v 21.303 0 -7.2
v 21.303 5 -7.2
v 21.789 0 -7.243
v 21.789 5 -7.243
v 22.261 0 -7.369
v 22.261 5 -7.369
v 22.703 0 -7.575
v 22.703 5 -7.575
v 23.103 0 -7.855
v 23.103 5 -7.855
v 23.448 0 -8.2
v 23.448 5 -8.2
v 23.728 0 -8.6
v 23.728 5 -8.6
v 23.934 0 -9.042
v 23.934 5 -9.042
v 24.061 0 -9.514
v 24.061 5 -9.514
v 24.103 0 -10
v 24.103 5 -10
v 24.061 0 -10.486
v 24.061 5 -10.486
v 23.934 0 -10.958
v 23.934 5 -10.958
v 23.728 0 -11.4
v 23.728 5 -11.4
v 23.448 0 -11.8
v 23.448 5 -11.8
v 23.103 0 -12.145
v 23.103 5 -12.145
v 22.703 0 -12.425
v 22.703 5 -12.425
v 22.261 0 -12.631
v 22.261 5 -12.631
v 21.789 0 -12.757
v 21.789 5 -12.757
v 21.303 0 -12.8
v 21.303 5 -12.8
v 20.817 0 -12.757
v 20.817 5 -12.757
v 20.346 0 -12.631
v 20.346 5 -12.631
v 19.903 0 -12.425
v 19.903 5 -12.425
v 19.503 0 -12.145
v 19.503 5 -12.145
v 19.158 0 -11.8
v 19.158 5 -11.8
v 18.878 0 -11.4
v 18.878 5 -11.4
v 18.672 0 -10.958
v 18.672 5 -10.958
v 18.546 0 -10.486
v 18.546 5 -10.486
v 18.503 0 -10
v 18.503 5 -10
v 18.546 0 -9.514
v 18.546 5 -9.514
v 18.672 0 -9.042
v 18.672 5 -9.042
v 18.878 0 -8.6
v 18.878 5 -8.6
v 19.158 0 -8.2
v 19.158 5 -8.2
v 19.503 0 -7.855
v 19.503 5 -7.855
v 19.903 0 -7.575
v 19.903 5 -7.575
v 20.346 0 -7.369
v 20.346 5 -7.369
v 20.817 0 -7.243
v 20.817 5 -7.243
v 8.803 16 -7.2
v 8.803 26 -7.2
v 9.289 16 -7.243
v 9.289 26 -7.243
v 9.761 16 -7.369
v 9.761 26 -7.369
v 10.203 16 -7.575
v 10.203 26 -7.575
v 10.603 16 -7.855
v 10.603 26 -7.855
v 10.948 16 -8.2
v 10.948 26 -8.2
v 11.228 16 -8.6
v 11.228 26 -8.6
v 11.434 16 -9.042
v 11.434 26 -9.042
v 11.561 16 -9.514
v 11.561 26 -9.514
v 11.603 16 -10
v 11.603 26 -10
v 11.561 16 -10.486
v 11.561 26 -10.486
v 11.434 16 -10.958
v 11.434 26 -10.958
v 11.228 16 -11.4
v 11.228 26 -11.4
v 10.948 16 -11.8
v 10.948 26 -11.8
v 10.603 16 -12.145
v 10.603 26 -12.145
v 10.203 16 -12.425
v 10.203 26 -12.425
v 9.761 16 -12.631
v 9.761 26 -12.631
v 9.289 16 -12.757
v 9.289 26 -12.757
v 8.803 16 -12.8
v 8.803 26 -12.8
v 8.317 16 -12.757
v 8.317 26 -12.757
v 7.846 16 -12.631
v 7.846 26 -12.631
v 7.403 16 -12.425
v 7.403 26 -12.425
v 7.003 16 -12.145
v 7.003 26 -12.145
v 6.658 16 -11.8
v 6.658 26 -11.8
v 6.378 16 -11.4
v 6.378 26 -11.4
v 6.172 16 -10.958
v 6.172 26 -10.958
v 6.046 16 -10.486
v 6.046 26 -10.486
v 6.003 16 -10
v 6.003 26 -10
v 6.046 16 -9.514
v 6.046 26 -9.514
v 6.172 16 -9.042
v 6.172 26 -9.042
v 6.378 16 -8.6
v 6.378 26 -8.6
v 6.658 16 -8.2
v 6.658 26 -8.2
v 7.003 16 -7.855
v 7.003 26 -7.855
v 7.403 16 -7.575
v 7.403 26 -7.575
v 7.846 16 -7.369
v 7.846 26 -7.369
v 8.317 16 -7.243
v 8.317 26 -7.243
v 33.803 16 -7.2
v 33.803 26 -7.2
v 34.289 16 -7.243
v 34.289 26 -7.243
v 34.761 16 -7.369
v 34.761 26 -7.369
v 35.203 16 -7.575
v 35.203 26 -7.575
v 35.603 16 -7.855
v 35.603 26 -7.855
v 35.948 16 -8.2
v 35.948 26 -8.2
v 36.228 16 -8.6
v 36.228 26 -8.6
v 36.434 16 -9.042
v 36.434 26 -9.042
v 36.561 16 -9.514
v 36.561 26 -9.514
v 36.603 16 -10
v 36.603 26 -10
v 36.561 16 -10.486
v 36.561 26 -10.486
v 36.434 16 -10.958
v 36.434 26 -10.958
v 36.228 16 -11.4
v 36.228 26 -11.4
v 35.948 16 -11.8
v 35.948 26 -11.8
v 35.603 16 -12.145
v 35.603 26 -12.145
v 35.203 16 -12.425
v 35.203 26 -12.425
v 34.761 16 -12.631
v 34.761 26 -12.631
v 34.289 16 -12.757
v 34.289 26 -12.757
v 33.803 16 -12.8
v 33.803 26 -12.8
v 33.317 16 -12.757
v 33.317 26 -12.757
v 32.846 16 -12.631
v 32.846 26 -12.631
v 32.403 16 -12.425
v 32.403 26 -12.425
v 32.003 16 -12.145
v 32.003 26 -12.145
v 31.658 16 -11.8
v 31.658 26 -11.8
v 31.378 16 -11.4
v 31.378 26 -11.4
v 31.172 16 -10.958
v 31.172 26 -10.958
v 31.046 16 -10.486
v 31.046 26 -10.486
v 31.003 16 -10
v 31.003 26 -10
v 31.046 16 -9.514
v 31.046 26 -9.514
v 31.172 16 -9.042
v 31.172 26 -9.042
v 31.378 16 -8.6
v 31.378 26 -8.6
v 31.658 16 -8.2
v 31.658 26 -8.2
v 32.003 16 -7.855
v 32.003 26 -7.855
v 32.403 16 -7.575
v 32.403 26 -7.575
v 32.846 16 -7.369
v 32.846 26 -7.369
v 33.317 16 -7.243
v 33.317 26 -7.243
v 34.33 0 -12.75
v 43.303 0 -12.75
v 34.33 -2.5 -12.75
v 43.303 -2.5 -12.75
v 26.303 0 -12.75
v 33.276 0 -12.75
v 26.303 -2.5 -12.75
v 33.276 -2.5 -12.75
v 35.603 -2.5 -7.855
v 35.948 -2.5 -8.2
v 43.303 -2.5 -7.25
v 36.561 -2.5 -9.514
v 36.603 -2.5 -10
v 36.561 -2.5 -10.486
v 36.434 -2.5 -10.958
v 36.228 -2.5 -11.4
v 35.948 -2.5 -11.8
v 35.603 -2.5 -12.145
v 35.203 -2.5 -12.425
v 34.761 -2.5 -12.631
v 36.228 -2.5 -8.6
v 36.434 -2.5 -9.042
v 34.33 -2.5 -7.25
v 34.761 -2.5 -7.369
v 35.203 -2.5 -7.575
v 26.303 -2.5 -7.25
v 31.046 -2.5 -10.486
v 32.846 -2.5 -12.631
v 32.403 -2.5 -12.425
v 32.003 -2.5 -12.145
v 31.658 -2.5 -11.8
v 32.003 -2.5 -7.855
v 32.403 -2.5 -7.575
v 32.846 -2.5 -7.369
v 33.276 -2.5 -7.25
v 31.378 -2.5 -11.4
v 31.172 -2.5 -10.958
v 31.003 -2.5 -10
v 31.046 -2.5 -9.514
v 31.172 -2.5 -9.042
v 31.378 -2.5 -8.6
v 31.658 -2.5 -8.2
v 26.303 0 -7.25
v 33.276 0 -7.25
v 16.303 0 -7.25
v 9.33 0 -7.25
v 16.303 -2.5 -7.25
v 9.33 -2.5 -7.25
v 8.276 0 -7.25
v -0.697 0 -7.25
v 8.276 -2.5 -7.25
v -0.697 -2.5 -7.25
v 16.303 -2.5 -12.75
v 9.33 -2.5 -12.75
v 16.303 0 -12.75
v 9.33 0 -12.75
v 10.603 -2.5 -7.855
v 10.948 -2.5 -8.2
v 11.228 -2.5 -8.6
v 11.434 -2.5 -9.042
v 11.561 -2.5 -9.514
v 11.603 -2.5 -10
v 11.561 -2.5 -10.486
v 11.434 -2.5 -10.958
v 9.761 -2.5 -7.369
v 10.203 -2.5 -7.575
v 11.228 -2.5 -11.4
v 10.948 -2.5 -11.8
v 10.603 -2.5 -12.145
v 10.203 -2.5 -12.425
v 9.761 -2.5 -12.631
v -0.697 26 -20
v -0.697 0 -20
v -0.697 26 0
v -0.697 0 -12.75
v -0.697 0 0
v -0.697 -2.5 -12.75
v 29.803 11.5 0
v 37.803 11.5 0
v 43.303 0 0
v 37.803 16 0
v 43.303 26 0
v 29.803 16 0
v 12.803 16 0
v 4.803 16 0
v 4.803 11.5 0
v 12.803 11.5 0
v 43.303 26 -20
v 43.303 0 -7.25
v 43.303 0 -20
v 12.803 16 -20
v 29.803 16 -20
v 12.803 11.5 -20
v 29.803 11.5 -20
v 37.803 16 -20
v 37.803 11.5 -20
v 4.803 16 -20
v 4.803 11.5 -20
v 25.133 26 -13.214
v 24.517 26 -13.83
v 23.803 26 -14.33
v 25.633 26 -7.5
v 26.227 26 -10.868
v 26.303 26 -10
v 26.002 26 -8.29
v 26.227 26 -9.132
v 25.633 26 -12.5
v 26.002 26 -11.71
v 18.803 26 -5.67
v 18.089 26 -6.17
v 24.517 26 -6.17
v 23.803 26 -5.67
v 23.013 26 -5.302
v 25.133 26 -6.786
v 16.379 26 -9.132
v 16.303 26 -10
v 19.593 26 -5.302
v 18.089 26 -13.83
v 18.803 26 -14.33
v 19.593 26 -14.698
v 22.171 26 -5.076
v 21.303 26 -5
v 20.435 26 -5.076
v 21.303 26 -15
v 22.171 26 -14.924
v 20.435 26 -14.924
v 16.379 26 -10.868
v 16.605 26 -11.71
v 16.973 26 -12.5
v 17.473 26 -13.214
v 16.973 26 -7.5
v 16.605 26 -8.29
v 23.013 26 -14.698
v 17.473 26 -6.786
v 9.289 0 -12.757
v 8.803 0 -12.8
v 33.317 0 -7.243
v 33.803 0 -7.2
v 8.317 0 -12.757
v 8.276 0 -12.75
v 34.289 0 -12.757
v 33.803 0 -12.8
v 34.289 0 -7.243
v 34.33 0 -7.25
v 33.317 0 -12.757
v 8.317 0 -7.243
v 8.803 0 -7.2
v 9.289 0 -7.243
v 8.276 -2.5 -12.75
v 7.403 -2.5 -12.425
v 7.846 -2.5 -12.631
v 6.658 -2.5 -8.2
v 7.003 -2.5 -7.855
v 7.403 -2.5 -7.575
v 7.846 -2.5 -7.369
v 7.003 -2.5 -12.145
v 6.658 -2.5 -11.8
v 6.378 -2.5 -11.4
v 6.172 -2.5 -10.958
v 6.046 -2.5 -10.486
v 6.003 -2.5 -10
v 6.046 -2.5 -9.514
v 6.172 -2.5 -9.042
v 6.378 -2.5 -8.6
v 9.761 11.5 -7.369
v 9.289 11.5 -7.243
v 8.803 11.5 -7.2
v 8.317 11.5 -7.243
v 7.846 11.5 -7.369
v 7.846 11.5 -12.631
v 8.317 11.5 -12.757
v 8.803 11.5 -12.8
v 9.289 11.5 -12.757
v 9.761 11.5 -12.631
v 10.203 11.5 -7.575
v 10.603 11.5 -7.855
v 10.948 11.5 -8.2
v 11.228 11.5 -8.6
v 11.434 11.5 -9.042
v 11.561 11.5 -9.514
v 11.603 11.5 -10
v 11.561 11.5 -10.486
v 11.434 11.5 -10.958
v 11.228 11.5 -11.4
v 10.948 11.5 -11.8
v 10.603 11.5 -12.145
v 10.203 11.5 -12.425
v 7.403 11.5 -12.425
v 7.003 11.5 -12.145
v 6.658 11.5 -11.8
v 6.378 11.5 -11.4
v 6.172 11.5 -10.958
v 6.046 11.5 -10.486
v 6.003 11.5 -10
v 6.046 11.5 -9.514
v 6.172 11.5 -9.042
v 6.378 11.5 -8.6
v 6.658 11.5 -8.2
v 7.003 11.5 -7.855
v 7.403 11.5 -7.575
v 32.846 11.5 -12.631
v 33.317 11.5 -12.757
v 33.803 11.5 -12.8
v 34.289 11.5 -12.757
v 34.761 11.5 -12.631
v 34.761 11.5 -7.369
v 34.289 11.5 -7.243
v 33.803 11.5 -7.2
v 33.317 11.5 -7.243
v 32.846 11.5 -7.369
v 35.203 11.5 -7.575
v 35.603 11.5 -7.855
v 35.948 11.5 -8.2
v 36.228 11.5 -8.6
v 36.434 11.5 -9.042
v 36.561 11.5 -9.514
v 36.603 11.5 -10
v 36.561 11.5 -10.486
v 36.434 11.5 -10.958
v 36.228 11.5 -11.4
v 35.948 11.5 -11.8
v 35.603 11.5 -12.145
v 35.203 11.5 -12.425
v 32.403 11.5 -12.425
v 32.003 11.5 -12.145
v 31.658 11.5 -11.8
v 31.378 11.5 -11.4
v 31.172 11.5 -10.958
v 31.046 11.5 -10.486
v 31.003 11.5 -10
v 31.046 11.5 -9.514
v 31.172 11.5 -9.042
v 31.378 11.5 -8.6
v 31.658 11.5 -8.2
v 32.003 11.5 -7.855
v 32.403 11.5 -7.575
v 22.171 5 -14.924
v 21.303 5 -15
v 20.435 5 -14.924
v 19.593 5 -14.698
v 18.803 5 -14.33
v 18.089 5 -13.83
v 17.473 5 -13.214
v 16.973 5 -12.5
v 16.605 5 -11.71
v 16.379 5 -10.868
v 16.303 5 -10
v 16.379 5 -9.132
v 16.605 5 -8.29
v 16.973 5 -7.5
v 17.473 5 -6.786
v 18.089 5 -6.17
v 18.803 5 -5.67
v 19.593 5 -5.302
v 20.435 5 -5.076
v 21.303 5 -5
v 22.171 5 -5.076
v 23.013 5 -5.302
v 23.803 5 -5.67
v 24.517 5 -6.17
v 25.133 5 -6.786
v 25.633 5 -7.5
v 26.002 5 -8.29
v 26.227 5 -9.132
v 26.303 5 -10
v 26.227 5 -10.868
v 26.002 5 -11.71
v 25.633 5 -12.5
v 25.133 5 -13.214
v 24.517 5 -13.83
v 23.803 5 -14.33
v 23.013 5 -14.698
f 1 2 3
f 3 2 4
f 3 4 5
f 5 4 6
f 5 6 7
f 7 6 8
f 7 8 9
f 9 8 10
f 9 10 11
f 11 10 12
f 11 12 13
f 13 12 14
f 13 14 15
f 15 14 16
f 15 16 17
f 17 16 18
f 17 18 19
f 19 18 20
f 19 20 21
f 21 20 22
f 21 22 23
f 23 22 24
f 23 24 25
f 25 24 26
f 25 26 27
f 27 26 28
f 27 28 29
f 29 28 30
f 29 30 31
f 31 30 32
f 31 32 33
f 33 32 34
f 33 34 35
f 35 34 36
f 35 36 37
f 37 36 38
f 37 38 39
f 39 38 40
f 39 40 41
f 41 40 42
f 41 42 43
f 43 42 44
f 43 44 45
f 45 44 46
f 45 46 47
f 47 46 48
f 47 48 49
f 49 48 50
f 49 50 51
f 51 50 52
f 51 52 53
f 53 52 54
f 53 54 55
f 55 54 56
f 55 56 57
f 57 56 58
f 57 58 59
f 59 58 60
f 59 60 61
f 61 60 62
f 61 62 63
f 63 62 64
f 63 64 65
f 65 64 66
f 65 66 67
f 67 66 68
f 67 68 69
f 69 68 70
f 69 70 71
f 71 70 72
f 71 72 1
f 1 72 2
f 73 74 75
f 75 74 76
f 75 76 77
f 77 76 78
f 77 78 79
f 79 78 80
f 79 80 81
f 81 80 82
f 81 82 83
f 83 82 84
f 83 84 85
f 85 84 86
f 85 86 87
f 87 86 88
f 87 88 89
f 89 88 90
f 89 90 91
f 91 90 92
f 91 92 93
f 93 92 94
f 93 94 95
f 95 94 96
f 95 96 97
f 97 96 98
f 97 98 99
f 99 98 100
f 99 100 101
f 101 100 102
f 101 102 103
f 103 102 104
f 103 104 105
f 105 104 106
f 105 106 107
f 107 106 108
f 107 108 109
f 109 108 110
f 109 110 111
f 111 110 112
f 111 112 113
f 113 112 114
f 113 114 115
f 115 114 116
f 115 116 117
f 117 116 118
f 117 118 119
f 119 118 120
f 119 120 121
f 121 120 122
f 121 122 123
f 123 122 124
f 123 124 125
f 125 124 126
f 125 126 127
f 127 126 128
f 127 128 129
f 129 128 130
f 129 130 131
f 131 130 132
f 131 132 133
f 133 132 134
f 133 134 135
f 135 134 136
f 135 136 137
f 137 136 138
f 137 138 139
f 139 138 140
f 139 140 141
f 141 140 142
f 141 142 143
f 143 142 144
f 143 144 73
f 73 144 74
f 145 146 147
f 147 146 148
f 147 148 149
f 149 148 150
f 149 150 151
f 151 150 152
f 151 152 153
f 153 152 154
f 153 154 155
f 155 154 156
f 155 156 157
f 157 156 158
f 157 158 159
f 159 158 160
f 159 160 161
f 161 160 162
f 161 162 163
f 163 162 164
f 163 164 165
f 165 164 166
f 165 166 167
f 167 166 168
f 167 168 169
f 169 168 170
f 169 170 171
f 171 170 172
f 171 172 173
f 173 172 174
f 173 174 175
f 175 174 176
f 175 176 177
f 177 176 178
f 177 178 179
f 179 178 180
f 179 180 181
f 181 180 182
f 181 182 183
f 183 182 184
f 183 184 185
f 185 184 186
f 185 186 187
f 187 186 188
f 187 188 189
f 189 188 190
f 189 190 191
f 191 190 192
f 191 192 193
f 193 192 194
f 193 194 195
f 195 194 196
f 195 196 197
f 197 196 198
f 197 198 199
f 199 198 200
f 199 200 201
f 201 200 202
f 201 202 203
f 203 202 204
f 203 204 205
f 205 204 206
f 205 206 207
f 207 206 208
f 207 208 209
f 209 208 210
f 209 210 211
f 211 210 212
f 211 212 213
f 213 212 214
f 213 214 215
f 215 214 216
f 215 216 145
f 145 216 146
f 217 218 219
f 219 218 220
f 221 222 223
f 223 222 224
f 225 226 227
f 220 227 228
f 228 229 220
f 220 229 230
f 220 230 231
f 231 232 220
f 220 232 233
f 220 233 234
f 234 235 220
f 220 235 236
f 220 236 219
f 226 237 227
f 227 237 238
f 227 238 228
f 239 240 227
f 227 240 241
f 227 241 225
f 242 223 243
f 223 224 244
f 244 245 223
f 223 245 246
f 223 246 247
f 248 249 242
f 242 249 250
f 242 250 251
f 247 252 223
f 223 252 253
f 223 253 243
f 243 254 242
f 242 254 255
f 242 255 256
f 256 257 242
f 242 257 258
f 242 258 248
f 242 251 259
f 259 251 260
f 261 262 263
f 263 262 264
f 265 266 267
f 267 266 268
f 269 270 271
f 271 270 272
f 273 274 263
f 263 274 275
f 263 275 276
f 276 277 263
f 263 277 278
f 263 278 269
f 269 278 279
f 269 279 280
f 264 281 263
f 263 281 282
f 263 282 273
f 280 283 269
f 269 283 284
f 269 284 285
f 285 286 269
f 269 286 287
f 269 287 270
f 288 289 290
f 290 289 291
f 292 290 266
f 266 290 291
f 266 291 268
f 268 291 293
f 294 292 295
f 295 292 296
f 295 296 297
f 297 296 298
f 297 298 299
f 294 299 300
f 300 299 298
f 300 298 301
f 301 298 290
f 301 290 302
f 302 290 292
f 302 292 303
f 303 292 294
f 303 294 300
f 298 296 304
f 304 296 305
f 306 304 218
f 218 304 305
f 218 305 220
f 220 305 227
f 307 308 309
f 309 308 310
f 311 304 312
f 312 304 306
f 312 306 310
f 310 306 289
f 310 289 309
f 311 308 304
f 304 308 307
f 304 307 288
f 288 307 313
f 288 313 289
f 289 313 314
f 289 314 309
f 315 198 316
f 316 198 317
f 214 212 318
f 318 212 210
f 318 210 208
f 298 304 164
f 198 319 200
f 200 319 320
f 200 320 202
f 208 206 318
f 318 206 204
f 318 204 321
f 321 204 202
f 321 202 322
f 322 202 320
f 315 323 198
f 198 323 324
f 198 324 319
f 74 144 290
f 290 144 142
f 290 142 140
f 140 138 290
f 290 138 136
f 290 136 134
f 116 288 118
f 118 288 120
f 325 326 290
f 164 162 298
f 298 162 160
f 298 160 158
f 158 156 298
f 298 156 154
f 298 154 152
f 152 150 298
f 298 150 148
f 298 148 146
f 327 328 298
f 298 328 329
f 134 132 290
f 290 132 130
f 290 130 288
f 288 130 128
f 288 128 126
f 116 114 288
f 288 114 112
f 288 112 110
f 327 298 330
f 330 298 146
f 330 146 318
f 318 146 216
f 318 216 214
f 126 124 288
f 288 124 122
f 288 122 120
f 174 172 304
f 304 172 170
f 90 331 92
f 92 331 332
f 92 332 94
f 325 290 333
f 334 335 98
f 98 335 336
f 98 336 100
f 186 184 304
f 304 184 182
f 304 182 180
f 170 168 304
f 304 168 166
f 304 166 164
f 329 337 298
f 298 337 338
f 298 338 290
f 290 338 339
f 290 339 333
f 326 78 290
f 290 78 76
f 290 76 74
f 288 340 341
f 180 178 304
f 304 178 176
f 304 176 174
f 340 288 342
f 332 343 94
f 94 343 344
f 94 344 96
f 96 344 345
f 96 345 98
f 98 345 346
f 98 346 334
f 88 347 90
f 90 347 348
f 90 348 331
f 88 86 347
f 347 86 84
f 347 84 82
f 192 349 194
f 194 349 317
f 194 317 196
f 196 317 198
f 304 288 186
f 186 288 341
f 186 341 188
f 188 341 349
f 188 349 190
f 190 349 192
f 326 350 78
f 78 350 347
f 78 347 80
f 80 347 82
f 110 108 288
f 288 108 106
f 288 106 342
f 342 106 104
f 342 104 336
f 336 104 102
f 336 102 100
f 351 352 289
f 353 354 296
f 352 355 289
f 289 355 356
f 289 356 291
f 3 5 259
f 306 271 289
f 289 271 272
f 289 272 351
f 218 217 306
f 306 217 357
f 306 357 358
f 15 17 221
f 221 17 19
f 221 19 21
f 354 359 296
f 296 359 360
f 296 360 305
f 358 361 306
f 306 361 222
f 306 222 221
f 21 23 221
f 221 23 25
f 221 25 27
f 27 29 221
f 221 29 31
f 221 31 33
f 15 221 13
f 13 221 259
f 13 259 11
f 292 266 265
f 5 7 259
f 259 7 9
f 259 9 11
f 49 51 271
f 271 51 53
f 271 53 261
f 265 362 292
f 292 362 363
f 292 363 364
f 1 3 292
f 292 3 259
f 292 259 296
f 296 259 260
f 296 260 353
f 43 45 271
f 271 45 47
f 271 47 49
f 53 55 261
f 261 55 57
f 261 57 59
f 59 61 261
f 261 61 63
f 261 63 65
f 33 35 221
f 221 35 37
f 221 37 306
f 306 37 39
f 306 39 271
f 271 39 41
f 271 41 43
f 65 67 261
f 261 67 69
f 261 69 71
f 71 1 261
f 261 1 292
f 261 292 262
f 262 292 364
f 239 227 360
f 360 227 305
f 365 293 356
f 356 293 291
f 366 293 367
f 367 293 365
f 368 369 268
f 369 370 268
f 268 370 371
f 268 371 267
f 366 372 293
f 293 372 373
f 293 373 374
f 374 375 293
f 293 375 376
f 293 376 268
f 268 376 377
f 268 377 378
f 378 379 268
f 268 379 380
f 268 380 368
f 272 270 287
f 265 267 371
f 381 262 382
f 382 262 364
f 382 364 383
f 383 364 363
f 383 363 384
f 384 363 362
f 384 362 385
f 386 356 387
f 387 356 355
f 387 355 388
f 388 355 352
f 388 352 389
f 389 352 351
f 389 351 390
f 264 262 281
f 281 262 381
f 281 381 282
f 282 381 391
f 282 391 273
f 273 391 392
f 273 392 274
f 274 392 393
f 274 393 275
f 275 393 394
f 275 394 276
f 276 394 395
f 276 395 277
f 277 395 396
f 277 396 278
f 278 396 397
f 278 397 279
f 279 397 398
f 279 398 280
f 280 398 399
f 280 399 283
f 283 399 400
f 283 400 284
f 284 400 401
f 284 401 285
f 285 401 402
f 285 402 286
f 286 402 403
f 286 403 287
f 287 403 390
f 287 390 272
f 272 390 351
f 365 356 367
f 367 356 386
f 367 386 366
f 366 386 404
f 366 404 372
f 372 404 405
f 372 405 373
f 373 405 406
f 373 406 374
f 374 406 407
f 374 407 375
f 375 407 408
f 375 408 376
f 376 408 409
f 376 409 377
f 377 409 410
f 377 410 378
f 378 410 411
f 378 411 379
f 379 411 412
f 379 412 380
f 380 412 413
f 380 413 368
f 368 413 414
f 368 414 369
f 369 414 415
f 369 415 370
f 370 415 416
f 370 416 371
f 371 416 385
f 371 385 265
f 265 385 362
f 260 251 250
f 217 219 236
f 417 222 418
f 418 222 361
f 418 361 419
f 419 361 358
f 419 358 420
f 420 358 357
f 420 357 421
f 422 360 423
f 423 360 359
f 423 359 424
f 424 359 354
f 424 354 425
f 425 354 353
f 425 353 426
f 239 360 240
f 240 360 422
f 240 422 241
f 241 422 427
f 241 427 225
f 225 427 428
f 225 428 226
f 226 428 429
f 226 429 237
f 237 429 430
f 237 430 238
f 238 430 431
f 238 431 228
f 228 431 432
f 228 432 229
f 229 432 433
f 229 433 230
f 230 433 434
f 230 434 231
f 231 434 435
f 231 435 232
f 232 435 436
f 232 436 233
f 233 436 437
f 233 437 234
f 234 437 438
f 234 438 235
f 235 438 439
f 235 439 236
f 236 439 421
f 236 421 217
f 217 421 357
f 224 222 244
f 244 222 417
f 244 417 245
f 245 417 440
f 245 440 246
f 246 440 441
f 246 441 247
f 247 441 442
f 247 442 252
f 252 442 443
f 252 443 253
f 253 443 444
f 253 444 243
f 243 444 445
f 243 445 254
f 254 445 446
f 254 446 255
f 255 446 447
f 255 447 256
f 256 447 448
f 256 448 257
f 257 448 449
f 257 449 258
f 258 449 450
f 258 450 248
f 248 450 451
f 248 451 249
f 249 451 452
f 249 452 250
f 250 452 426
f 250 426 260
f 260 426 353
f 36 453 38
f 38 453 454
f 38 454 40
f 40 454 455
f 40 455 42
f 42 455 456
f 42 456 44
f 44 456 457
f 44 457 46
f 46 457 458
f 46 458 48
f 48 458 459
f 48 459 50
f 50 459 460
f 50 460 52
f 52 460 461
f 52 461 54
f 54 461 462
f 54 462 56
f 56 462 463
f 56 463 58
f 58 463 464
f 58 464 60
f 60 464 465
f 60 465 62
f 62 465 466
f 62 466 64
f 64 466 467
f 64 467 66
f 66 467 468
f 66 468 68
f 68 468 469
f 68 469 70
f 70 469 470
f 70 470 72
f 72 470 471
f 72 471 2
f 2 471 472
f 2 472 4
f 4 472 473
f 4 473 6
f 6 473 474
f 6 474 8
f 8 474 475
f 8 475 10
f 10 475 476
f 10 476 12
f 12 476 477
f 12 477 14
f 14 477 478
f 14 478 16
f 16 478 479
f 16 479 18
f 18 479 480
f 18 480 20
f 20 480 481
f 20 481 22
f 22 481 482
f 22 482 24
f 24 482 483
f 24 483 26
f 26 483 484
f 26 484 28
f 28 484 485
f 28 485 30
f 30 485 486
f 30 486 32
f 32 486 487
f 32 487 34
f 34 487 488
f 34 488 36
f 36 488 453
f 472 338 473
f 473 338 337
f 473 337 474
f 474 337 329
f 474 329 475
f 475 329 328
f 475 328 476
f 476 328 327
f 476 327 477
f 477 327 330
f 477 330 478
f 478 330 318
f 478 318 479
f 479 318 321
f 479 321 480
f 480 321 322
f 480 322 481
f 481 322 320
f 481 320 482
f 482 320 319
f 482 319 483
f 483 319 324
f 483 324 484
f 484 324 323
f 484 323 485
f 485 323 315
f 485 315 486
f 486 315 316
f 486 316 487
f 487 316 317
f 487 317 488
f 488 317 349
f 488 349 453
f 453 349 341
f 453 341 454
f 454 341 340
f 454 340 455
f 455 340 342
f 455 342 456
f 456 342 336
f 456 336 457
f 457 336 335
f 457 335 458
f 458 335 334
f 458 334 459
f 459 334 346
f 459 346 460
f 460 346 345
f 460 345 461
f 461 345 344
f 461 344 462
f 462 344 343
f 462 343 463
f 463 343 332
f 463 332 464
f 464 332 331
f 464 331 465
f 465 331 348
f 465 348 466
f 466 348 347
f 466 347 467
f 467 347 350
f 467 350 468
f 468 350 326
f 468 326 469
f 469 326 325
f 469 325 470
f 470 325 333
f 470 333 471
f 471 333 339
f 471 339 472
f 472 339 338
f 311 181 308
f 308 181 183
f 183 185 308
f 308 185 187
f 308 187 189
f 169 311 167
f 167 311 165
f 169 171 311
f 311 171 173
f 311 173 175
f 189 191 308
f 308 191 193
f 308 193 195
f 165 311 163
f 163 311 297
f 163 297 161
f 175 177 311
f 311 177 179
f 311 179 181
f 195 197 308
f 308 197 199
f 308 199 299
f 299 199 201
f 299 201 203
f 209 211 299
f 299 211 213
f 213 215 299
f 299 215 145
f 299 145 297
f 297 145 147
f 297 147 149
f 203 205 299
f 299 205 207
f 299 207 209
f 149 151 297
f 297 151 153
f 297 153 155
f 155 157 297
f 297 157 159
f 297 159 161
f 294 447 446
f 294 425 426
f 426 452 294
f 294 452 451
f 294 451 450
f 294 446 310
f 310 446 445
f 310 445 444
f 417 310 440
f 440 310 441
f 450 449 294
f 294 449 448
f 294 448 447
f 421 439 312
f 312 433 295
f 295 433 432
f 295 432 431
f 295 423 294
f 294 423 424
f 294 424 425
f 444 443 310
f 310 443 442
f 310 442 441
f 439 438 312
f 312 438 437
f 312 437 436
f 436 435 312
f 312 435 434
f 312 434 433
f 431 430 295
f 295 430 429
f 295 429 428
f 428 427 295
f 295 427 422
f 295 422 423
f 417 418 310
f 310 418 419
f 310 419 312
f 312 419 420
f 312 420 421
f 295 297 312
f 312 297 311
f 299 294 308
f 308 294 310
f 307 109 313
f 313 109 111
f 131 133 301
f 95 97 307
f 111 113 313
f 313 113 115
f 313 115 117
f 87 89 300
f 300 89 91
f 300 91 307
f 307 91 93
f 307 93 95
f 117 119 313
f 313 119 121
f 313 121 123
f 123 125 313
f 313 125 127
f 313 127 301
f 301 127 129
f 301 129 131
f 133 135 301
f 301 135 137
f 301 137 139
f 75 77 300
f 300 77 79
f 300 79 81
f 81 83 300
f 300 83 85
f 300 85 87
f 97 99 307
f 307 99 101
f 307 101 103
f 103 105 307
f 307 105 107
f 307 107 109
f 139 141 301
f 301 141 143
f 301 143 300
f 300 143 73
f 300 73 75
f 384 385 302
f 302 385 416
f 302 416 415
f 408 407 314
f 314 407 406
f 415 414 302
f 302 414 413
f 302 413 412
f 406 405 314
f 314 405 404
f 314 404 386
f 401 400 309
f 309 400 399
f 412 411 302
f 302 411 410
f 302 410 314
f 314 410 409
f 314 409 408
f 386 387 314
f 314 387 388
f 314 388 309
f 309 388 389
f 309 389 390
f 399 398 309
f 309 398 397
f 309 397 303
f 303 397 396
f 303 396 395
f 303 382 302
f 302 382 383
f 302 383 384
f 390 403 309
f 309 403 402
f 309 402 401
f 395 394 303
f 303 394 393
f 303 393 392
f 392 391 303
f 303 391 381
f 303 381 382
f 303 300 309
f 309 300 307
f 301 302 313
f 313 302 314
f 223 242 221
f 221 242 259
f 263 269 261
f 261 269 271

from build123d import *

# Parameters (mm, degrees)
SKETCH1_W           = 44
SKETCH1_H           = 20
BOSS_EXTRUDE1_DEPTH = 26
SKETCH3_W           = 44
SKETCH3_H           = 5.5
BOSS_EXTRUDE5_DEPTH = 2.5
SKETCH2_R           = 2.8
CUT_EXTRUDE1_DEPTH  = 29.5
SKETCH4_R           = 5
CUT_EXTRUDE2_DEPTH  = 21
SKETCH5_W           = 8
SKETCH5_H           = 4.5
CUT_EXTRUDE3_DEPTH  = 21
SKETCH6_W           = 10
SKETCH6_H           = 5.5
CUT_EXTRUDE4_DEPTH  = 2.5


with BuildPart() as part:
    # Sketch1 → Boss-Extrude1 (new body)
    with BuildSketch(Plane(origin=(0, 0, 0), x_dir=(1, 0, 0), z_dir=(0, 1, 0))):
        with Locations((21.30324178, 10)):
            Rectangle(SKETCH1_W, SKETCH1_H)
    extrude(amount=BOSS_EXTRUDE1_DEPTH)

    # Sketch3 → Boss-Extrude5 (add)
    with BuildSketch(Plane.XZ):
        with Locations((21.30324178, -10)):
            Rectangle(SKETCH3_W, SKETCH3_H)
    extrude(amount=BOSS_EXTRUDE5_DEPTH)

    # Sketch2 → Cut-Extrude1 (cut, through all)
    with BuildSketch(Plane(origin=(0, 26, 0), x_dir=(1, 0, 0), z_dir=(0, 1, 0))):
        with Locations((8.80324178, 10)):
            Circle(SKETCH2_R)
        with Locations((33.80324178, 10)):
            Circle(SKETCH2_R)
        with Locations((21.30324178, 10)):
            Circle(SKETCH2_R)
    extrude(amount=-CUT_EXTRUDE1_DEPTH, mode=Mode.SUBTRACT)

    # Sketch4 → Cut-Extrude2 (cut)
    with BuildSketch(Plane(origin=(0, 26, 0), x_dir=(1, 0, 0), z_dir=(0, 1, 0))):
        with Locations((21.30324178, 10)):
            Circle(SKETCH4_R)
    extrude(amount=-CUT_EXTRUDE2_DEPTH, mode=Mode.SUBTRACT)

    # Sketch5 → Cut-Extrude3 (cut, through all)
    with BuildSketch(Plane(origin=(0, 0, -20), x_dir=(-1, 0, 0), z_dir=(0, 0, -1))):
        with Locations((-33.80324178, 13.75)):
            Rectangle(SKETCH5_W, SKETCH5_H)
        with Locations((-8.80324178, 13.75)):
            Rectangle(SKETCH5_W, SKETCH5_H)
    extrude(amount=-CUT_EXTRUDE3_DEPTH, mode=Mode.SUBTRACT)

    # Sketch6 → Cut-Extrude4 (cut)
    with BuildSketch(Plane.XZ.offset(2.5)):
        with Locations((21.30324178, -10)):
            Rectangle(SKETCH6_W, SKETCH6_H)
    extrude(amount=-CUT_EXTRUDE4_DEPTH, mode=Mode.SUBTRACT)


solid = part.part
